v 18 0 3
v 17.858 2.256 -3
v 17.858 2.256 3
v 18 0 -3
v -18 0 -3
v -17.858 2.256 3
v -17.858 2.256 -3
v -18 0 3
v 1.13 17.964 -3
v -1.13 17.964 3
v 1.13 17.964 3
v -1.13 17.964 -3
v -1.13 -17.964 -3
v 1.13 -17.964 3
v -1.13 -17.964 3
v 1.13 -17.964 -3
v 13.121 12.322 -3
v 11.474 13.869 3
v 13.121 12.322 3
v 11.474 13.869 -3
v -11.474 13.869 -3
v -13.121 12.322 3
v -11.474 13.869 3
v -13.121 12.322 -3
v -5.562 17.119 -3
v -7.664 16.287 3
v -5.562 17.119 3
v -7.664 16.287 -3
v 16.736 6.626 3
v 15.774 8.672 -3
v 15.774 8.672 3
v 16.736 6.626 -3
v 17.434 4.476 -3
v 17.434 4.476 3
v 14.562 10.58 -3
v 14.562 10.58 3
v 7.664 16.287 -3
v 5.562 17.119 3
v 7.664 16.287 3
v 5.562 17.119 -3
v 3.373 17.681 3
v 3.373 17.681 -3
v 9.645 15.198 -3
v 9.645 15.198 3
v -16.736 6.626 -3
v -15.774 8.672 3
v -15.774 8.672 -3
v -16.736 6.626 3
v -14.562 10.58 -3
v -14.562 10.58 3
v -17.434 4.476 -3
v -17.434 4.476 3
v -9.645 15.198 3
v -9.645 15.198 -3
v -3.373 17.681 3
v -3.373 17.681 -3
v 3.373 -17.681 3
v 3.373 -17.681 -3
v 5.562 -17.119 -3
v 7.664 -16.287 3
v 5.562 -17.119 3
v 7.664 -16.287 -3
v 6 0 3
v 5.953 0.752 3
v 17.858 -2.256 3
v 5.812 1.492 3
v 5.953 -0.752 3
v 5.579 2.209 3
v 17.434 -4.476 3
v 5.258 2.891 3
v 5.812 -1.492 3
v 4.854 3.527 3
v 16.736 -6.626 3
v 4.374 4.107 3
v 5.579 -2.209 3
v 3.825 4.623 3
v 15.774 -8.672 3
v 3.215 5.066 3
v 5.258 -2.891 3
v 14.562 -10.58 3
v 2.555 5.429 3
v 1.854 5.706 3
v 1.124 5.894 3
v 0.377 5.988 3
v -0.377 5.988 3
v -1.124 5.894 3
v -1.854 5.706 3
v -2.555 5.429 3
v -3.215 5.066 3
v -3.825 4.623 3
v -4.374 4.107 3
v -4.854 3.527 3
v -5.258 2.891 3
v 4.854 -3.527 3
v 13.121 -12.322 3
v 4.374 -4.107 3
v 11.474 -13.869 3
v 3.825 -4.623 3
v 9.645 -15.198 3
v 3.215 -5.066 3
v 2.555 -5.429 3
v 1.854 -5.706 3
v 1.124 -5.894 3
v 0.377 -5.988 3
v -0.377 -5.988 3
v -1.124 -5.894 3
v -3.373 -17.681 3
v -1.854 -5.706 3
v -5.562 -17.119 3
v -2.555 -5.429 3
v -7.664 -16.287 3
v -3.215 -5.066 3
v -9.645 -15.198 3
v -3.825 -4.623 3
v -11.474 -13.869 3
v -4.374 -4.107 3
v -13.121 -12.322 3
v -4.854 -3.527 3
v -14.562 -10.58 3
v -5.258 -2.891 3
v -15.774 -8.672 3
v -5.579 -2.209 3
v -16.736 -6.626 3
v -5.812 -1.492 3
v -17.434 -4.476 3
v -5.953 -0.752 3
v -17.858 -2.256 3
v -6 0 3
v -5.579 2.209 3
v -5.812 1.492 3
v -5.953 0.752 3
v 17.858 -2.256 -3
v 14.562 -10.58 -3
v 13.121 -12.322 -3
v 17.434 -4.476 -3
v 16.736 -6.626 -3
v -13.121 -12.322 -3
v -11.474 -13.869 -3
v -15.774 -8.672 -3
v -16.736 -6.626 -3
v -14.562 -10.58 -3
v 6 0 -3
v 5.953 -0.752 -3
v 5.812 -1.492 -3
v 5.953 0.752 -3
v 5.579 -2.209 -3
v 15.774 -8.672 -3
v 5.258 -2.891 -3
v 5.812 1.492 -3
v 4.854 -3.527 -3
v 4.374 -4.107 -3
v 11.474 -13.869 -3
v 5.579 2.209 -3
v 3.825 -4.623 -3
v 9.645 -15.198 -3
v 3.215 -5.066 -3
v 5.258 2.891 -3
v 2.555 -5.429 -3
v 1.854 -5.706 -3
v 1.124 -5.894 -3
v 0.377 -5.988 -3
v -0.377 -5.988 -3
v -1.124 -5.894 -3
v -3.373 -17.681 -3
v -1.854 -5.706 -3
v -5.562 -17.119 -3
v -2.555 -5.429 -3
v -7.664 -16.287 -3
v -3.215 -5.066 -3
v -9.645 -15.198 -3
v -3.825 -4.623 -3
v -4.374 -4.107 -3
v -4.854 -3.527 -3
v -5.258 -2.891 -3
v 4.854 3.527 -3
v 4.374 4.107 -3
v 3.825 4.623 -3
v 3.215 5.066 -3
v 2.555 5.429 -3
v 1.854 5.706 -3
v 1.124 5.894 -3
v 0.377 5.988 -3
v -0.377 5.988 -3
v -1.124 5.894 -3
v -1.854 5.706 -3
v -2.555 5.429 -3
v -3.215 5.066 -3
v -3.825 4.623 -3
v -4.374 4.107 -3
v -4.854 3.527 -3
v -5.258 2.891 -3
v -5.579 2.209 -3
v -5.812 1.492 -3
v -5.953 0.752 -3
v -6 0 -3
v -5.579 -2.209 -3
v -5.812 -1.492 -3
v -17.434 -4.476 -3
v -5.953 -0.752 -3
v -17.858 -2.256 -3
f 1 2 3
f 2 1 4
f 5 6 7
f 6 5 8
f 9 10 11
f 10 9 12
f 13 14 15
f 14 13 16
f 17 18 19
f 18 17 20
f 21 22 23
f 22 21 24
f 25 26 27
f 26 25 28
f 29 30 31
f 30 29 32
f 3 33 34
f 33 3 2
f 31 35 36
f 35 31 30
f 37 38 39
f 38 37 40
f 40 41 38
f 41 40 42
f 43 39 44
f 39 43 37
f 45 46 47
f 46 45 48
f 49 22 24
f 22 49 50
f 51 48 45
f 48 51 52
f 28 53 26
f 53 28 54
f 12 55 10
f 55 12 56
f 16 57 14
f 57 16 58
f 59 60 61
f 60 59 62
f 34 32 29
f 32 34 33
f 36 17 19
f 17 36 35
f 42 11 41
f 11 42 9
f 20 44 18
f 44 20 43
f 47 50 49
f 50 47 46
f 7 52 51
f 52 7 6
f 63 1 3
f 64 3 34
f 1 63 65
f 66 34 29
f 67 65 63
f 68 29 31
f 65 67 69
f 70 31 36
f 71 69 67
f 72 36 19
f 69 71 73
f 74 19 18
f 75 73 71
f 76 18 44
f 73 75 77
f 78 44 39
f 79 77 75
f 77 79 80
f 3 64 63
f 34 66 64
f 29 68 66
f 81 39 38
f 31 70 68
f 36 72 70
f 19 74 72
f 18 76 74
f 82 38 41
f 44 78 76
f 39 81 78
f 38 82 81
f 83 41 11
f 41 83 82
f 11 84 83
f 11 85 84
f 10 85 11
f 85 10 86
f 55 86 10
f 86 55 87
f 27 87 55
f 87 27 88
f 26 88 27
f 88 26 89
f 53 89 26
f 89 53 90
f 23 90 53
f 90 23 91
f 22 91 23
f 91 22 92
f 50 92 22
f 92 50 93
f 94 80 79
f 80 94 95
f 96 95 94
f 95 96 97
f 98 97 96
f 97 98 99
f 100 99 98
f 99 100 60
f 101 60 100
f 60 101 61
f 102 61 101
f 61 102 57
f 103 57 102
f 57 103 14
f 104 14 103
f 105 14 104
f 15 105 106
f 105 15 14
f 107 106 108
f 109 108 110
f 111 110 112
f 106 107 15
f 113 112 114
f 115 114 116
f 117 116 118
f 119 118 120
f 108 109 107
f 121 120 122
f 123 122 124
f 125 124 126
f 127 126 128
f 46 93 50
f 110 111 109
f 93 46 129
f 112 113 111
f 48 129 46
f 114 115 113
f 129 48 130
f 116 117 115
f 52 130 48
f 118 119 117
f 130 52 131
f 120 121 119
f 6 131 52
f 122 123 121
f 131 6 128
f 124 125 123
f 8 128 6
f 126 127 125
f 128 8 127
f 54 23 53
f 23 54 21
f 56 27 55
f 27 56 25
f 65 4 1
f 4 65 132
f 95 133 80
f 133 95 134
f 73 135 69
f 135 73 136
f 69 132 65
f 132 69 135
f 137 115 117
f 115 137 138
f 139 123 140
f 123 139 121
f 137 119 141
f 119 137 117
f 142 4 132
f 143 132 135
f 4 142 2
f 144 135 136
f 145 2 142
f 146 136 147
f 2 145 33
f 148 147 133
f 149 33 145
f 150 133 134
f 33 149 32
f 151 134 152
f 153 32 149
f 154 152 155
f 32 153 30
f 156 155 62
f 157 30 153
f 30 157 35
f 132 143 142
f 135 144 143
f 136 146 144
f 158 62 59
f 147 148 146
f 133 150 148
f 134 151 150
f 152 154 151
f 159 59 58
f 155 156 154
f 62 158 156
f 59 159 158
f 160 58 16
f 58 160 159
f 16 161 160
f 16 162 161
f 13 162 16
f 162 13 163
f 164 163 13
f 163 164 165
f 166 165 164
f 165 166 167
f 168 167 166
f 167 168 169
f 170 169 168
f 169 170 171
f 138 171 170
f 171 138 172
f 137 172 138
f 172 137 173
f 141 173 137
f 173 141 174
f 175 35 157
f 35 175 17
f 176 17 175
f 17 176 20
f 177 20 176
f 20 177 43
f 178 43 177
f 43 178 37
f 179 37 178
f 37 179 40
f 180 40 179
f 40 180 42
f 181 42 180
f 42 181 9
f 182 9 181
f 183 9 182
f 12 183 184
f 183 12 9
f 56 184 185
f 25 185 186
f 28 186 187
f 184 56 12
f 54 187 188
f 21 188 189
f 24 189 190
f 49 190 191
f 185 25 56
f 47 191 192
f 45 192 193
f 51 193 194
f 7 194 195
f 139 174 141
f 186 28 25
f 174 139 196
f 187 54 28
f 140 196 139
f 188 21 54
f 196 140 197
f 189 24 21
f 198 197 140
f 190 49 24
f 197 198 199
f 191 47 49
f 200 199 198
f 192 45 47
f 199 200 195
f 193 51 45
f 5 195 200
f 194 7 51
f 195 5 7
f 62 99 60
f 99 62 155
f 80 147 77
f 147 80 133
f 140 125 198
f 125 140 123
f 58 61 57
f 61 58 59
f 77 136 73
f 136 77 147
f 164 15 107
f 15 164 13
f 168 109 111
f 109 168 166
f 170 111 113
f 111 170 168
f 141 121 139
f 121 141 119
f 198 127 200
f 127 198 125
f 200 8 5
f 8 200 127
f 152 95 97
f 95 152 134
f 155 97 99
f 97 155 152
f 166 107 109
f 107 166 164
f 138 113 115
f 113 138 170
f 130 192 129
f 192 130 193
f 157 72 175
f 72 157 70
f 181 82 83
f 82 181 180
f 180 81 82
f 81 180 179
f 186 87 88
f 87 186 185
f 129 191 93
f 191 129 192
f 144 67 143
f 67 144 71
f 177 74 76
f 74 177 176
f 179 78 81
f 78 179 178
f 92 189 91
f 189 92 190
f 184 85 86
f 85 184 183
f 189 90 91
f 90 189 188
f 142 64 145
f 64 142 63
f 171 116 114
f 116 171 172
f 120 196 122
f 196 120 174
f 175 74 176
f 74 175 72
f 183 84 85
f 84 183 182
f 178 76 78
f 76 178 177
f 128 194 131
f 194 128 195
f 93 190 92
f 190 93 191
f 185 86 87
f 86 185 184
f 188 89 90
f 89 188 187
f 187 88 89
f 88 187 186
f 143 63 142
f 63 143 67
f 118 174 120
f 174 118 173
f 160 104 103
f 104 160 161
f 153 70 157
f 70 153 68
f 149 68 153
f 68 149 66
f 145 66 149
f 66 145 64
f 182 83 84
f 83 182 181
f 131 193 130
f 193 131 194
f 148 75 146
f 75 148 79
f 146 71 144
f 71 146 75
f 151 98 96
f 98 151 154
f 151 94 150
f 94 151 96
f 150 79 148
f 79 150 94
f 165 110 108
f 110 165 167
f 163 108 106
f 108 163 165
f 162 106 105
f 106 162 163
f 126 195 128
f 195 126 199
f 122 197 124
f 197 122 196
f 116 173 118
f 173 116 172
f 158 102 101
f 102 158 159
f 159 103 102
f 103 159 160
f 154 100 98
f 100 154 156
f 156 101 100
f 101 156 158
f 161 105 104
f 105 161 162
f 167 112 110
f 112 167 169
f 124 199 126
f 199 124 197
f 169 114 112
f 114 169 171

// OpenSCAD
$fn = 50;


difference() {
	union() {
		translate(v = [0, 0, -3.0000000000]) {
			cylinder(h = 6, r = 18.0000000000);
		}
	}
	union() {
		translate(v = [0, 0, -100.0000000000]) {
			cylinder(h = 200, r = 6);
		}
	}
}
